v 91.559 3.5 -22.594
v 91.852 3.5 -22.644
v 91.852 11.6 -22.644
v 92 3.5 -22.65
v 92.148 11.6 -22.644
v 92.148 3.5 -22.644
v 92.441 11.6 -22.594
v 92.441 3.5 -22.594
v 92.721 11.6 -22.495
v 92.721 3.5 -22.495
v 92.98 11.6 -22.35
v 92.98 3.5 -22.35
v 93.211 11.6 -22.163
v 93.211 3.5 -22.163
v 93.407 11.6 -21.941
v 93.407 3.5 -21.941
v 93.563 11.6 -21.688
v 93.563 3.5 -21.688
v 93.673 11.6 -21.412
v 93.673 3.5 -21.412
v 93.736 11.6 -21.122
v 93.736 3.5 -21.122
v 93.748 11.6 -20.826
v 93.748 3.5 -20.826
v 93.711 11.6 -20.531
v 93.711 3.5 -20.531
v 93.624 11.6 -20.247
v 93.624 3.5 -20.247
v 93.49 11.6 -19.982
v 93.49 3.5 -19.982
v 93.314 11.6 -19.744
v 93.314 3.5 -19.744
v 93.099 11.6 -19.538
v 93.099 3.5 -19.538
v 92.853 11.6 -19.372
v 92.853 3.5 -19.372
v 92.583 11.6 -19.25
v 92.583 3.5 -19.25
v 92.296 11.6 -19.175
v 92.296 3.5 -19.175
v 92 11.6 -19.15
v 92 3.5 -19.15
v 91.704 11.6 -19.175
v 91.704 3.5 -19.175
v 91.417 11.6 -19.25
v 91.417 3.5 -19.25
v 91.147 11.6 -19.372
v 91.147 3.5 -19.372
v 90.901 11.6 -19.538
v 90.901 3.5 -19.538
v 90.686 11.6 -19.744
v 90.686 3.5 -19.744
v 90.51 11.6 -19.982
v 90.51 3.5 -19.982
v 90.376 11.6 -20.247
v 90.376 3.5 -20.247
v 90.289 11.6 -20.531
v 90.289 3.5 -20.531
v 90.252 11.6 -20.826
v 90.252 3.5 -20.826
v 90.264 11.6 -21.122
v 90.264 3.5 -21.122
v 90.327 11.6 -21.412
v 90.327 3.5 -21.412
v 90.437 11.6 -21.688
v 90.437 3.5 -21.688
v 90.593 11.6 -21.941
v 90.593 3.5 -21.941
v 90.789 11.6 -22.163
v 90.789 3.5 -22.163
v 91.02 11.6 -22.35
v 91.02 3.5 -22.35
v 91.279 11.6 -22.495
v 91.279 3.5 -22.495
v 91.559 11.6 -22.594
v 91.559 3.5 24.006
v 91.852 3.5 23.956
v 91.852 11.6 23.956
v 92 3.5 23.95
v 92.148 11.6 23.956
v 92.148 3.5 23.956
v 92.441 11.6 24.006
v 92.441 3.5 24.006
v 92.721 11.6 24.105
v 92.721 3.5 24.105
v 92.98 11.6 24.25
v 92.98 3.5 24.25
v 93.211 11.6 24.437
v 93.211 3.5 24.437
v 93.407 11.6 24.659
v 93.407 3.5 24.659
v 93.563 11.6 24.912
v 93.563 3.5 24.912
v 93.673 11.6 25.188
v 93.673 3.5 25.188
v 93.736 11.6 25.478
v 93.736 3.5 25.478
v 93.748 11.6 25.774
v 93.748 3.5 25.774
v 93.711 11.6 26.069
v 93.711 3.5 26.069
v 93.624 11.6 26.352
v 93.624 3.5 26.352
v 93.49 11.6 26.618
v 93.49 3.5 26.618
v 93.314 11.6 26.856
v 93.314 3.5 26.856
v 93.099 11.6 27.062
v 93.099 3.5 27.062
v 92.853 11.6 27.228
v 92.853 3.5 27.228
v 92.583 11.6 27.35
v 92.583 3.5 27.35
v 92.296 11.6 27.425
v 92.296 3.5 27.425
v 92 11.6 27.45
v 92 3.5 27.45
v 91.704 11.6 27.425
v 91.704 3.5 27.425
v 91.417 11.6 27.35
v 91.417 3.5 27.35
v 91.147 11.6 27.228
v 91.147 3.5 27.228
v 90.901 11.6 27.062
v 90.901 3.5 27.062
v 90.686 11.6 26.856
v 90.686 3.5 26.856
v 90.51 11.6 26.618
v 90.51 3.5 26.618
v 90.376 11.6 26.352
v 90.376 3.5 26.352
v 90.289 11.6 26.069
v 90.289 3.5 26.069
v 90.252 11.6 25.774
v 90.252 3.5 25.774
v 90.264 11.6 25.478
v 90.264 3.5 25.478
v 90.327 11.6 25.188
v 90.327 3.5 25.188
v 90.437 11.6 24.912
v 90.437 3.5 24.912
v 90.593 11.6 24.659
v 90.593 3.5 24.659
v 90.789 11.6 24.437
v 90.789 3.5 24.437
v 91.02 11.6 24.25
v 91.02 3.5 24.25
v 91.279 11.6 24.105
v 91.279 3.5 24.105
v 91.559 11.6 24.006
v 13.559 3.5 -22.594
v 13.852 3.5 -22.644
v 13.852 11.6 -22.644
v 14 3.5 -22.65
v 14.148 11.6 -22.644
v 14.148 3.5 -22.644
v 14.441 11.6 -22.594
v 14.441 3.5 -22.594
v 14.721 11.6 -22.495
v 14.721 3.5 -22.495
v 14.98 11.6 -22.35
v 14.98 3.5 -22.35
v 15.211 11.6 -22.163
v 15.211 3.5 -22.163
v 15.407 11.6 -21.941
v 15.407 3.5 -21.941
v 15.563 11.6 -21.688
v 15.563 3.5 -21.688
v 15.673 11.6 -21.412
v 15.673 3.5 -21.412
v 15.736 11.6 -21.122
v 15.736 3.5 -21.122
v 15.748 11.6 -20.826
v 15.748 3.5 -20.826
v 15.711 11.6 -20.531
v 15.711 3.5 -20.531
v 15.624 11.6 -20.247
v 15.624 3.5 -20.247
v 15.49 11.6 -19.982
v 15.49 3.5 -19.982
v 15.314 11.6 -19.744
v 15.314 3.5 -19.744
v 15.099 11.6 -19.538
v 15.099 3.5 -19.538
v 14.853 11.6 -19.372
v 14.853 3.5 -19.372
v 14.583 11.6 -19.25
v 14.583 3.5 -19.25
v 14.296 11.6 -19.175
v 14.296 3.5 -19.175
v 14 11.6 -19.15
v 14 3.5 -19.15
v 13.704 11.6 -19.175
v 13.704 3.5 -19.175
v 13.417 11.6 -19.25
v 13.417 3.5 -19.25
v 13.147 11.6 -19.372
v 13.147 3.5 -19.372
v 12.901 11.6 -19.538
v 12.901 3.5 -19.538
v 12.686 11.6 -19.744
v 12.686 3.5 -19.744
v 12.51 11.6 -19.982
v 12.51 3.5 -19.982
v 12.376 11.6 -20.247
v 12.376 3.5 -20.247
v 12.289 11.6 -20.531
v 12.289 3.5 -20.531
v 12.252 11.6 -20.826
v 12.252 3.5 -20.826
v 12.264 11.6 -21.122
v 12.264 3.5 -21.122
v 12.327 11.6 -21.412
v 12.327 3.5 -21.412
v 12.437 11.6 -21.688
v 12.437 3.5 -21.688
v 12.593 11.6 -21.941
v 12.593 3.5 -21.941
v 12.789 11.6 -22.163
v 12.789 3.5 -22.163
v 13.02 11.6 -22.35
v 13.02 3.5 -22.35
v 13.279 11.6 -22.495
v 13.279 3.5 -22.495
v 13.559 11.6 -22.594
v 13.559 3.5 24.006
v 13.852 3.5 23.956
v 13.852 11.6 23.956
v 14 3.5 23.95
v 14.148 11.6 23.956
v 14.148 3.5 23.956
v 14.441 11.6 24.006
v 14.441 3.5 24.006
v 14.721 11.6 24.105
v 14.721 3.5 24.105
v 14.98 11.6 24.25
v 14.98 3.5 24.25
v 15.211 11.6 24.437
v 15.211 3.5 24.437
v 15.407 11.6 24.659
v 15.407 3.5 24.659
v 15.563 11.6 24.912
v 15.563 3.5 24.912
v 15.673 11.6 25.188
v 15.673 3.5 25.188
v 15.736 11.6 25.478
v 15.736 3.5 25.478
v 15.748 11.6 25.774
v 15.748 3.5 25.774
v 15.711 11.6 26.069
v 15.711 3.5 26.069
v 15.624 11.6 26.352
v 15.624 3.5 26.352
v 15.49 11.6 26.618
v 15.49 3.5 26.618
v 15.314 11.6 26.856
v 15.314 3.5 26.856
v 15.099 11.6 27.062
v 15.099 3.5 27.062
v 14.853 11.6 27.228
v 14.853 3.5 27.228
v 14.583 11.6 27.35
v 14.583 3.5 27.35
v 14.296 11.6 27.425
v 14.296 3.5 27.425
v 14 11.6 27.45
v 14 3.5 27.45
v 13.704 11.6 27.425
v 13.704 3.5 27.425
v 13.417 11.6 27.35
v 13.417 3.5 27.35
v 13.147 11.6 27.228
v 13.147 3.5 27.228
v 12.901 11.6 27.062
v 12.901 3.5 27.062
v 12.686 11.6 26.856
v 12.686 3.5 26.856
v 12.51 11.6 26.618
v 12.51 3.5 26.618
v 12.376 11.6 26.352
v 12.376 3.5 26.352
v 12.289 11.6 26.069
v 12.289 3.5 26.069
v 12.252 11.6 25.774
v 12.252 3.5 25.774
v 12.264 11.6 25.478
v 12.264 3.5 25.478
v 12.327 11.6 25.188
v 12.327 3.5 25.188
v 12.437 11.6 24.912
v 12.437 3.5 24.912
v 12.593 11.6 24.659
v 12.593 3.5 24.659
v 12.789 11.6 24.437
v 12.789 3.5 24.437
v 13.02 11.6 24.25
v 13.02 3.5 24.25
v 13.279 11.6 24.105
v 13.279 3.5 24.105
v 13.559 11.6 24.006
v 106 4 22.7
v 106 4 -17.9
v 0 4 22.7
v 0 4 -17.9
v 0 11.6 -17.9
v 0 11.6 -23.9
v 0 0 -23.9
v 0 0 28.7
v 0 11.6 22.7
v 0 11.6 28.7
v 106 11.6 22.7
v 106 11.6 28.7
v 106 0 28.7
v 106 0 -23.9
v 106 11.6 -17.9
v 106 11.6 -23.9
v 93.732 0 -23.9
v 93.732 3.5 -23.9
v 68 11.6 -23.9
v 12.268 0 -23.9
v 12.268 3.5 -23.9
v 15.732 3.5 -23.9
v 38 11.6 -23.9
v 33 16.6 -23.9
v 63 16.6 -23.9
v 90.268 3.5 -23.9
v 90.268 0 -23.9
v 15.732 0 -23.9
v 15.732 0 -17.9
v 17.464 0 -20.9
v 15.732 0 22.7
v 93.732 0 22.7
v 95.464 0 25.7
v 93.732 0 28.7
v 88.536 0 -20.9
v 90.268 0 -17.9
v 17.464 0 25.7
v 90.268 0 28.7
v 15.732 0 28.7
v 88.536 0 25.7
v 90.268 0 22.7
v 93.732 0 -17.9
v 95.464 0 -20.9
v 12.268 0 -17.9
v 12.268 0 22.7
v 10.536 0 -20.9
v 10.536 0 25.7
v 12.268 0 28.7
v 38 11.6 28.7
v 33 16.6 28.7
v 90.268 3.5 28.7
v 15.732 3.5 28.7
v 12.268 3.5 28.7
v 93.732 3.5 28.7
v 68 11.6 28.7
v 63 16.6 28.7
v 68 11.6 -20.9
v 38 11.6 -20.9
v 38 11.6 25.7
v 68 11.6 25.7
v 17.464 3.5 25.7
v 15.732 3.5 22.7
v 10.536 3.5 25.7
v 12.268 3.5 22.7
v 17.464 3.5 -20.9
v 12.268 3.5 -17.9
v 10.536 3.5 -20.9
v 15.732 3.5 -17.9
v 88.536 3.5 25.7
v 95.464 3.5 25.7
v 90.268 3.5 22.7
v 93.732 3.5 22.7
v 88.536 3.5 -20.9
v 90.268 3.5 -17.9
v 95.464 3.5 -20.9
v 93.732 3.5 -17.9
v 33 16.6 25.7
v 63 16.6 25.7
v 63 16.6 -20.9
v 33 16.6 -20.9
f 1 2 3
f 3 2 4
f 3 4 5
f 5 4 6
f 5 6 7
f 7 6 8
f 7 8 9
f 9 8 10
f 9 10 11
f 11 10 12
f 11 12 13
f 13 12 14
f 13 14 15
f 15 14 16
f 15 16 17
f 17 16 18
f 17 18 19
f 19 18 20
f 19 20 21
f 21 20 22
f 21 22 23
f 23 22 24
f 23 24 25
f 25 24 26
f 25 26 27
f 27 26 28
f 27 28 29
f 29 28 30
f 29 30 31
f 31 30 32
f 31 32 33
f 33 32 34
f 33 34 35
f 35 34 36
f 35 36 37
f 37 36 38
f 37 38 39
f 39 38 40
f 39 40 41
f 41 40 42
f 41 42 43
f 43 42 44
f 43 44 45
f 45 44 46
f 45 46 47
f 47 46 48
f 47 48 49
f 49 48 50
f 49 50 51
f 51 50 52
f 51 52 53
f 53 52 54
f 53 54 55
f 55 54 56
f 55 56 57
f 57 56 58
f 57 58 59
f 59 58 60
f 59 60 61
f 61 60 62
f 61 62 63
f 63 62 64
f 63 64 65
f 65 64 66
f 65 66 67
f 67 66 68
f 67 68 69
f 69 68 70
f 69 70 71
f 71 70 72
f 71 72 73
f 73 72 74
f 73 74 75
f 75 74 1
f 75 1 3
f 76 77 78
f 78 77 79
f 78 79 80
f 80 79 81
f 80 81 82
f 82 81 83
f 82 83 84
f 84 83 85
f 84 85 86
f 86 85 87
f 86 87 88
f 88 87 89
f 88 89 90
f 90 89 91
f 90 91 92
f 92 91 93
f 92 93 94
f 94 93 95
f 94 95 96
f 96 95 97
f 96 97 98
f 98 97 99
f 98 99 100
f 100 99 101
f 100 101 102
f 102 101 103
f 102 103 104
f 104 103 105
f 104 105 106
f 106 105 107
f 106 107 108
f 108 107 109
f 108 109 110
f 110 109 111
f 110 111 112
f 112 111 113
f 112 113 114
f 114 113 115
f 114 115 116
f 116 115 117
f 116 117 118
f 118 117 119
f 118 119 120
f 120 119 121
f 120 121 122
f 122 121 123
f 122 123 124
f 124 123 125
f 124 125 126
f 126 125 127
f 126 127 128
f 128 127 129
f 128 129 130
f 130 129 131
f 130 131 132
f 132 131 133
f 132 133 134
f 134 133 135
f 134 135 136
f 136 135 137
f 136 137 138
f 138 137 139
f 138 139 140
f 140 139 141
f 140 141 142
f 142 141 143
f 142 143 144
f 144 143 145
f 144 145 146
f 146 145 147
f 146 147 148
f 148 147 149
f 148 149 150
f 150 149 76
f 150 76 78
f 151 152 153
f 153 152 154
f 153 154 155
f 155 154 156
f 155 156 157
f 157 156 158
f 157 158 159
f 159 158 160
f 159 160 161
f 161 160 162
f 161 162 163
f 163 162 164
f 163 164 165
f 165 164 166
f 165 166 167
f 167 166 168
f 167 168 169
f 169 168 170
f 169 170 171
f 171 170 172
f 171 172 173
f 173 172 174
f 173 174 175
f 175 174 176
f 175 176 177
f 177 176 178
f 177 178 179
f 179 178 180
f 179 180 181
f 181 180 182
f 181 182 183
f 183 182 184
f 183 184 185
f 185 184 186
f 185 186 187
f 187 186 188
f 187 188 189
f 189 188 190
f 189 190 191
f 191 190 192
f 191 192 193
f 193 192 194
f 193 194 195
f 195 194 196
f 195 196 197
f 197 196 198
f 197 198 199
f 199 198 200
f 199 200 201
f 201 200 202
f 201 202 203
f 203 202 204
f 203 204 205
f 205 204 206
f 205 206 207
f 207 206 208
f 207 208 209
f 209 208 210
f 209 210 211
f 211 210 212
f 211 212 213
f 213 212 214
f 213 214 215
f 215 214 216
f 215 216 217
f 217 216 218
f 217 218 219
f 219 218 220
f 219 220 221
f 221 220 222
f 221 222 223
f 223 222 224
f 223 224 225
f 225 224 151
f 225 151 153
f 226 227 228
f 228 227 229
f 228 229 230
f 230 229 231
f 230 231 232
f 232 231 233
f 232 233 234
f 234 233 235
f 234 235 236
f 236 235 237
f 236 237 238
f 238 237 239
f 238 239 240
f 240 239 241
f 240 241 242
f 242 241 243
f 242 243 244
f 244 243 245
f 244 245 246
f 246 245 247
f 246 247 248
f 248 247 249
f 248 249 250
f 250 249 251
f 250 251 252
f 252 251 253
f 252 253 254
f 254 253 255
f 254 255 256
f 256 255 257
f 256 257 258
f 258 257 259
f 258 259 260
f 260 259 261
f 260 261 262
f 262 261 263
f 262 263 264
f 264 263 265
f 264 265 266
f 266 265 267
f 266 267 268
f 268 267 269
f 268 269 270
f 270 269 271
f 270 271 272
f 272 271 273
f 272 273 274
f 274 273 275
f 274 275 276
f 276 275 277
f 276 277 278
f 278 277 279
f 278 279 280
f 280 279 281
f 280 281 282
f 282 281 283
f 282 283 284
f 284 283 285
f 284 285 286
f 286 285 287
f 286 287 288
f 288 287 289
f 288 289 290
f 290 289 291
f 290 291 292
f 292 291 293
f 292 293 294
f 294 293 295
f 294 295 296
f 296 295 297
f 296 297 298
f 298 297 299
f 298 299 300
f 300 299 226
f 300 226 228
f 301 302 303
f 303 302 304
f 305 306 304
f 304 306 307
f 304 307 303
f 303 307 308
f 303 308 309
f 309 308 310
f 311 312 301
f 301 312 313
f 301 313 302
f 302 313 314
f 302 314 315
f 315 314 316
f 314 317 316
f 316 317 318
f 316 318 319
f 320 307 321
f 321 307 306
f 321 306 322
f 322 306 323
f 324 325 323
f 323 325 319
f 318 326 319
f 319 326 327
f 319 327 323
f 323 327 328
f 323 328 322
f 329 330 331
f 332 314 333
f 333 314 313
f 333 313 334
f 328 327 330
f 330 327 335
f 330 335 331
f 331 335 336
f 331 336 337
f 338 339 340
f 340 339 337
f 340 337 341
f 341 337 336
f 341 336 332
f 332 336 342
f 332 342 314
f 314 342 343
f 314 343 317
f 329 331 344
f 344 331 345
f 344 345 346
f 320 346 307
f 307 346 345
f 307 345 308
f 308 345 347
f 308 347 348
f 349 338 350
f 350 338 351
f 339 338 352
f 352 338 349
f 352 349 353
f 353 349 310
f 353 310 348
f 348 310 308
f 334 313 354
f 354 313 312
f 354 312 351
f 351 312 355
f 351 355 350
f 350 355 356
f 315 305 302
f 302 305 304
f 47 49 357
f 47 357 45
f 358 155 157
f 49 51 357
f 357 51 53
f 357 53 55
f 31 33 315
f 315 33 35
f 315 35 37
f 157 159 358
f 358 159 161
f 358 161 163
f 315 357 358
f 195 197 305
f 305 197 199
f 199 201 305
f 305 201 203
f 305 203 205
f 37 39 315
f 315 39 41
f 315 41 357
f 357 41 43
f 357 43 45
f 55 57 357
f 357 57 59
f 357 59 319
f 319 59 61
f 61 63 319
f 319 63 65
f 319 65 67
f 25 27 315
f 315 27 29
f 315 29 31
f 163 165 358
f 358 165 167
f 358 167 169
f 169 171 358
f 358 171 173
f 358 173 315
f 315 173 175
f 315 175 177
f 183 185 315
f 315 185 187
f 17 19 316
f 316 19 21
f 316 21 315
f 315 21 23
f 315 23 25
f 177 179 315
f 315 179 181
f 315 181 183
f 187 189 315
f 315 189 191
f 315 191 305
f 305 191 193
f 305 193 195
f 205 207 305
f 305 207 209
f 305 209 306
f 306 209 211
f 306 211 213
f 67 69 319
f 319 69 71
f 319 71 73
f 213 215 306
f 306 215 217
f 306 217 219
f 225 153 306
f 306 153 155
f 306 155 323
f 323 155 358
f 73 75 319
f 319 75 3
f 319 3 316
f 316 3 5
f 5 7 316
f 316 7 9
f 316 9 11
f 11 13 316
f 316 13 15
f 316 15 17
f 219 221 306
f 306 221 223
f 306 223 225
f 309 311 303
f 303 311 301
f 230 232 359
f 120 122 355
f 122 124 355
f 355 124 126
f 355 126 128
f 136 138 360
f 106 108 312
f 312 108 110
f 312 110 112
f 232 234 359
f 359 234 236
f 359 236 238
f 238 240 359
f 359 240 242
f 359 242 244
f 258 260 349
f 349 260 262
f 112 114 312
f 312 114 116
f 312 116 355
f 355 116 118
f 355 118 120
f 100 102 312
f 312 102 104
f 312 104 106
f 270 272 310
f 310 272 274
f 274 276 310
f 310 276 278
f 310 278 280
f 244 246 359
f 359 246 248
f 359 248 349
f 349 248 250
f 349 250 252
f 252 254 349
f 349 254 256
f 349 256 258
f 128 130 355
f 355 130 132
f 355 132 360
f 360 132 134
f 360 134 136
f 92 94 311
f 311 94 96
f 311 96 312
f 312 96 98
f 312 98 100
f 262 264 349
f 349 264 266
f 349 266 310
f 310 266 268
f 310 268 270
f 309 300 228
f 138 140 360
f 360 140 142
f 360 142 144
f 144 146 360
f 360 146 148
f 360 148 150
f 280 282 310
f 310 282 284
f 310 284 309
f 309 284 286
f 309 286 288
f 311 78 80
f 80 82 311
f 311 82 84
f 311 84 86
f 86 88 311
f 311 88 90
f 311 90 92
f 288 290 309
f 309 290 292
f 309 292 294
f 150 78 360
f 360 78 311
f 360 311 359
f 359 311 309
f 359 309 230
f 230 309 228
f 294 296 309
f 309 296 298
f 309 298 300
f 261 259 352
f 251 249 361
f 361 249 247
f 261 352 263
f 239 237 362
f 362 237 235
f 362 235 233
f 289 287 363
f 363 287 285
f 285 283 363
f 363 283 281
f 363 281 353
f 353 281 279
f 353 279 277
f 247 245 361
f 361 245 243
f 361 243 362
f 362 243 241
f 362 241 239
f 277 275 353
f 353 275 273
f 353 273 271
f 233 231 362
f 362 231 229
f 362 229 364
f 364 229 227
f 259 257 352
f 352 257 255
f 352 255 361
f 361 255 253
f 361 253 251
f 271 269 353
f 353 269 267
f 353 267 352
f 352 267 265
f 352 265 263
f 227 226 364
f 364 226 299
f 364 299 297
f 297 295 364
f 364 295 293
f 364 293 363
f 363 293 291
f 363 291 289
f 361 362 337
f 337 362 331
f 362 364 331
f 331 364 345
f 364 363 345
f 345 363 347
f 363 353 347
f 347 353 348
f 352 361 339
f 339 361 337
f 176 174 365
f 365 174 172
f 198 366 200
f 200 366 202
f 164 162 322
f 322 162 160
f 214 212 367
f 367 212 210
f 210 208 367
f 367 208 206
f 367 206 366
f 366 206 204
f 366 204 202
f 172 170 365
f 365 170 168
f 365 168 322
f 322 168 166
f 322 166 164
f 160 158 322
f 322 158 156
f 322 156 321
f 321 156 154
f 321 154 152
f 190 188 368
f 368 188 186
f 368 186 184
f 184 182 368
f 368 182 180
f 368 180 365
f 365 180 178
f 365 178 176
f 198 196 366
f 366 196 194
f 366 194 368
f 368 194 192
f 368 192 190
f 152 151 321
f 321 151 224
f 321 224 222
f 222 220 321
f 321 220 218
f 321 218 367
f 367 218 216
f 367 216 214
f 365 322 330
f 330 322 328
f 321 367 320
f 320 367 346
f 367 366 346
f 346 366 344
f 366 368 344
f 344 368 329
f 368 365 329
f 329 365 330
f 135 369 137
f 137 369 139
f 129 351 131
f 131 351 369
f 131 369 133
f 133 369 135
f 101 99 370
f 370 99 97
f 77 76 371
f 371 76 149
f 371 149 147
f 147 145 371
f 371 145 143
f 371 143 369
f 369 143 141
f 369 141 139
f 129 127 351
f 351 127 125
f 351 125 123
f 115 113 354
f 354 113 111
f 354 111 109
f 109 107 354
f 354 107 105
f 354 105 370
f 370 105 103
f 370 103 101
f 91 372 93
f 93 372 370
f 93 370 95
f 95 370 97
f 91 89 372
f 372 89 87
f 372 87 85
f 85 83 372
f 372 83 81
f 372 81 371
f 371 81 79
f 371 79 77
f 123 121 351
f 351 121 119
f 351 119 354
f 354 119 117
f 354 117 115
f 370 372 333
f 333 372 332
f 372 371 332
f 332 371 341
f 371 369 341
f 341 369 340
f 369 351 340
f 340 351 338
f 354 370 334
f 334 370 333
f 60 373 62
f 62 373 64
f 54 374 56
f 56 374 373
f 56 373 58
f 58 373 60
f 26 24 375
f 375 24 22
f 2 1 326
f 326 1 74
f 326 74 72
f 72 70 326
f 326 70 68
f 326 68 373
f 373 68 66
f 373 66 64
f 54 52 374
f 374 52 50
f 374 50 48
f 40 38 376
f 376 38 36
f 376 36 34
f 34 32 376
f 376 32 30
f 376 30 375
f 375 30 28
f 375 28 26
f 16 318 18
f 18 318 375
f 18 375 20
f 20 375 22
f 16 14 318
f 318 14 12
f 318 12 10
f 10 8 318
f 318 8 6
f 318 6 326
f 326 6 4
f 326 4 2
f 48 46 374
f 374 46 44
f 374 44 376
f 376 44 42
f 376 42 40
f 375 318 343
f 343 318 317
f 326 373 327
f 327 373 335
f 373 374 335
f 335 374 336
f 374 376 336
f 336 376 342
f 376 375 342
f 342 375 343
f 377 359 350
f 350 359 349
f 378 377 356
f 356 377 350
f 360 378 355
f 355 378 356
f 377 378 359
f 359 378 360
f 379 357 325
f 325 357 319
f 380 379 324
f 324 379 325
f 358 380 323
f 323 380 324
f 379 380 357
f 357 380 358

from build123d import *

# Parameters (mm, degrees)
SKETCH1_W           = 106
SKETCH1_H           = 6
SKETCH1_H_2         = 9.4
SKETCH1_H_3         = 8.5
SKETCH1_H_4         = 4.8
BOSS_EXTRUDE4_DEPTH = 4
SKETCH5_W           = 106
SKETCH5_H           = 6
BOSS_EXTRUDE5_DEPTH = 7.6
SKETCH4_W           = 106
SKETCH4_H           = 6
BOSS_EXTRUDE6_DEPTH = 7.6
SKETCH6_R           = 1.75
CUT_EXTRUDE1_DEPTH  = 20
CUT_EXTRUDE3_DEPTH  = 3.5
BOSS_EXTRUDE8_DEPTH = 3
BOSS_EXTRUDE9_DEPTH = 3


with BuildPart() as part:
    # Sketch1 → Boss-Extrude4 (new body)
    with BuildSketch(Plane(origin=(0, 0, 0), x_dir=(1, 0, 0), z_dir=(0, 1, 0))):
        with Locations((53, 20.9)):
            Rectangle(SKETCH1_W, SKETCH1_H)
        with Locations((53, 13.2)):
            Rectangle(SKETCH1_W, SKETCH1_H_2)
        with Locations((53, 4.25)):
            Rectangle(SKETCH1_W, SKETCH1_H_3)
        with Locations((53, -2.4)):
            Rectangle(SKETCH1_W, SKETCH1_H_4)
        with Locations((53, -9.05)):
            Rectangle(SKETCH1_W, SKETCH1_H_3)
        with Locations((53, -18)):
            Rectangle(SKETCH1_W, SKETCH1_H_2)
        with Locations((53, -25.7)):
            Rectangle(SKETCH1_W, SKETCH1_H)
    extrude(amount=BOSS_EXTRUDE4_DEPTH)

    # Sketch5 → Boss-Extrude5 (add)
    with BuildSketch(Plane(origin=(0, 4, 0), x_dir=(1, 0, 0), z_dir=(0, 1, 0))):
        with Locations((53, 20.9)):
            Rectangle(SKETCH5_W, SKETCH5_H)
        with Locations((53, -25.7)):
            Rectangle(SKETCH5_W, SKETCH5_H)
    extrude(amount=BOSS_EXTRUDE5_DEPTH)

    # Sketch4 → Boss-Extrude6 (add)
    with BuildSketch(Plane(origin=(0, 4, 0), x_dir=(1, 0, 0), z_dir=(0, 1, 0))):
        with Locations((53, 20.9)):
            Rectangle(SKETCH4_W, SKETCH4_H)
        with Locations((53, -25.7)):
            Rectangle(SKETCH4_W, SKETCH4_H)
    extrude(amount=BOSS_EXTRUDE6_DEPTH)

    # Sketch6 → Cut-Extrude1 (cut)
    with BuildSketch(Plane(origin=(0, 11.6, 0), x_dir=(1, 0, 0), z_dir=(0, 1, 0))):
        with Locations((92, 20.9)):
            Circle(SKETCH6_R)
        with Locations((92, -25.7)):
            Circle(SKETCH6_R)
        with Locations((14, 20.9)):
            Circle(SKETCH6_R)
        with Locations((14, -25.7)):
            Circle(SKETCH6_R)
    extrude(amount=-CUT_EXTRUDE1_DEPTH, mode=Mode.SUBTRACT)

    # Sketch7 → Cut-Extrude3 (cut)
    with BuildSketch(Plane.XZ):
        Polygon((17.464101615, 25.7), (15.732050808, 28.7), (12.267949192, 28.7), (10.535898385, 25.7), (12.267949192, 22.7), (15.732050808, 22.7), align=None)
        Polygon((95.464101615, 25.7), (93.732050808, 28.7), (90.267949192, 28.7), (88.535898385, 25.7), (90.267949192, 22.7), (93.732050808, 22.7), align=None)
        Polygon((17.464101615, -20.9), (15.732050808, -17.9), (12.267949192, -17.9), (10.535898385, -20.9), (12.267949192, -23.9), (15.732050808, -23.9), align=None)
        Polygon((95.464101615, -20.9), (93.732050808, -17.9), (90.267949192, -17.9), (88.535898385, -20.9), (90.267949192, -23.9), (93.732050808, -23.9), align=None)
    extrude(amount=-CUT_EXTRUDE3_DEPTH, mode=Mode.SUBTRACT)

    # Sketch8 → Boss-Extrude8 (add)
    with BuildSketch(Plane.XY.offset(28.7)):
        Polygon((38, 11.6), (33, 16.6), (63, 16.6), (68, 11.6), align=None)
    extrude(amount=-BOSS_EXTRUDE8_DEPTH)

    # Sketch9 → Boss-Extrude9 (add)
    with BuildSketch(Plane(origin=(0, 0, -23.9), x_dir=(-1, 0, 0), z_dir=(0, 0, -1))):
        Polygon((-68, 11.6), (-63, 16.6), (-33, 16.6), (-38, 11.6), align=None)
    extrude(amount=-BOSS_EXTRUDE9_DEPTH)


solid = part.part
